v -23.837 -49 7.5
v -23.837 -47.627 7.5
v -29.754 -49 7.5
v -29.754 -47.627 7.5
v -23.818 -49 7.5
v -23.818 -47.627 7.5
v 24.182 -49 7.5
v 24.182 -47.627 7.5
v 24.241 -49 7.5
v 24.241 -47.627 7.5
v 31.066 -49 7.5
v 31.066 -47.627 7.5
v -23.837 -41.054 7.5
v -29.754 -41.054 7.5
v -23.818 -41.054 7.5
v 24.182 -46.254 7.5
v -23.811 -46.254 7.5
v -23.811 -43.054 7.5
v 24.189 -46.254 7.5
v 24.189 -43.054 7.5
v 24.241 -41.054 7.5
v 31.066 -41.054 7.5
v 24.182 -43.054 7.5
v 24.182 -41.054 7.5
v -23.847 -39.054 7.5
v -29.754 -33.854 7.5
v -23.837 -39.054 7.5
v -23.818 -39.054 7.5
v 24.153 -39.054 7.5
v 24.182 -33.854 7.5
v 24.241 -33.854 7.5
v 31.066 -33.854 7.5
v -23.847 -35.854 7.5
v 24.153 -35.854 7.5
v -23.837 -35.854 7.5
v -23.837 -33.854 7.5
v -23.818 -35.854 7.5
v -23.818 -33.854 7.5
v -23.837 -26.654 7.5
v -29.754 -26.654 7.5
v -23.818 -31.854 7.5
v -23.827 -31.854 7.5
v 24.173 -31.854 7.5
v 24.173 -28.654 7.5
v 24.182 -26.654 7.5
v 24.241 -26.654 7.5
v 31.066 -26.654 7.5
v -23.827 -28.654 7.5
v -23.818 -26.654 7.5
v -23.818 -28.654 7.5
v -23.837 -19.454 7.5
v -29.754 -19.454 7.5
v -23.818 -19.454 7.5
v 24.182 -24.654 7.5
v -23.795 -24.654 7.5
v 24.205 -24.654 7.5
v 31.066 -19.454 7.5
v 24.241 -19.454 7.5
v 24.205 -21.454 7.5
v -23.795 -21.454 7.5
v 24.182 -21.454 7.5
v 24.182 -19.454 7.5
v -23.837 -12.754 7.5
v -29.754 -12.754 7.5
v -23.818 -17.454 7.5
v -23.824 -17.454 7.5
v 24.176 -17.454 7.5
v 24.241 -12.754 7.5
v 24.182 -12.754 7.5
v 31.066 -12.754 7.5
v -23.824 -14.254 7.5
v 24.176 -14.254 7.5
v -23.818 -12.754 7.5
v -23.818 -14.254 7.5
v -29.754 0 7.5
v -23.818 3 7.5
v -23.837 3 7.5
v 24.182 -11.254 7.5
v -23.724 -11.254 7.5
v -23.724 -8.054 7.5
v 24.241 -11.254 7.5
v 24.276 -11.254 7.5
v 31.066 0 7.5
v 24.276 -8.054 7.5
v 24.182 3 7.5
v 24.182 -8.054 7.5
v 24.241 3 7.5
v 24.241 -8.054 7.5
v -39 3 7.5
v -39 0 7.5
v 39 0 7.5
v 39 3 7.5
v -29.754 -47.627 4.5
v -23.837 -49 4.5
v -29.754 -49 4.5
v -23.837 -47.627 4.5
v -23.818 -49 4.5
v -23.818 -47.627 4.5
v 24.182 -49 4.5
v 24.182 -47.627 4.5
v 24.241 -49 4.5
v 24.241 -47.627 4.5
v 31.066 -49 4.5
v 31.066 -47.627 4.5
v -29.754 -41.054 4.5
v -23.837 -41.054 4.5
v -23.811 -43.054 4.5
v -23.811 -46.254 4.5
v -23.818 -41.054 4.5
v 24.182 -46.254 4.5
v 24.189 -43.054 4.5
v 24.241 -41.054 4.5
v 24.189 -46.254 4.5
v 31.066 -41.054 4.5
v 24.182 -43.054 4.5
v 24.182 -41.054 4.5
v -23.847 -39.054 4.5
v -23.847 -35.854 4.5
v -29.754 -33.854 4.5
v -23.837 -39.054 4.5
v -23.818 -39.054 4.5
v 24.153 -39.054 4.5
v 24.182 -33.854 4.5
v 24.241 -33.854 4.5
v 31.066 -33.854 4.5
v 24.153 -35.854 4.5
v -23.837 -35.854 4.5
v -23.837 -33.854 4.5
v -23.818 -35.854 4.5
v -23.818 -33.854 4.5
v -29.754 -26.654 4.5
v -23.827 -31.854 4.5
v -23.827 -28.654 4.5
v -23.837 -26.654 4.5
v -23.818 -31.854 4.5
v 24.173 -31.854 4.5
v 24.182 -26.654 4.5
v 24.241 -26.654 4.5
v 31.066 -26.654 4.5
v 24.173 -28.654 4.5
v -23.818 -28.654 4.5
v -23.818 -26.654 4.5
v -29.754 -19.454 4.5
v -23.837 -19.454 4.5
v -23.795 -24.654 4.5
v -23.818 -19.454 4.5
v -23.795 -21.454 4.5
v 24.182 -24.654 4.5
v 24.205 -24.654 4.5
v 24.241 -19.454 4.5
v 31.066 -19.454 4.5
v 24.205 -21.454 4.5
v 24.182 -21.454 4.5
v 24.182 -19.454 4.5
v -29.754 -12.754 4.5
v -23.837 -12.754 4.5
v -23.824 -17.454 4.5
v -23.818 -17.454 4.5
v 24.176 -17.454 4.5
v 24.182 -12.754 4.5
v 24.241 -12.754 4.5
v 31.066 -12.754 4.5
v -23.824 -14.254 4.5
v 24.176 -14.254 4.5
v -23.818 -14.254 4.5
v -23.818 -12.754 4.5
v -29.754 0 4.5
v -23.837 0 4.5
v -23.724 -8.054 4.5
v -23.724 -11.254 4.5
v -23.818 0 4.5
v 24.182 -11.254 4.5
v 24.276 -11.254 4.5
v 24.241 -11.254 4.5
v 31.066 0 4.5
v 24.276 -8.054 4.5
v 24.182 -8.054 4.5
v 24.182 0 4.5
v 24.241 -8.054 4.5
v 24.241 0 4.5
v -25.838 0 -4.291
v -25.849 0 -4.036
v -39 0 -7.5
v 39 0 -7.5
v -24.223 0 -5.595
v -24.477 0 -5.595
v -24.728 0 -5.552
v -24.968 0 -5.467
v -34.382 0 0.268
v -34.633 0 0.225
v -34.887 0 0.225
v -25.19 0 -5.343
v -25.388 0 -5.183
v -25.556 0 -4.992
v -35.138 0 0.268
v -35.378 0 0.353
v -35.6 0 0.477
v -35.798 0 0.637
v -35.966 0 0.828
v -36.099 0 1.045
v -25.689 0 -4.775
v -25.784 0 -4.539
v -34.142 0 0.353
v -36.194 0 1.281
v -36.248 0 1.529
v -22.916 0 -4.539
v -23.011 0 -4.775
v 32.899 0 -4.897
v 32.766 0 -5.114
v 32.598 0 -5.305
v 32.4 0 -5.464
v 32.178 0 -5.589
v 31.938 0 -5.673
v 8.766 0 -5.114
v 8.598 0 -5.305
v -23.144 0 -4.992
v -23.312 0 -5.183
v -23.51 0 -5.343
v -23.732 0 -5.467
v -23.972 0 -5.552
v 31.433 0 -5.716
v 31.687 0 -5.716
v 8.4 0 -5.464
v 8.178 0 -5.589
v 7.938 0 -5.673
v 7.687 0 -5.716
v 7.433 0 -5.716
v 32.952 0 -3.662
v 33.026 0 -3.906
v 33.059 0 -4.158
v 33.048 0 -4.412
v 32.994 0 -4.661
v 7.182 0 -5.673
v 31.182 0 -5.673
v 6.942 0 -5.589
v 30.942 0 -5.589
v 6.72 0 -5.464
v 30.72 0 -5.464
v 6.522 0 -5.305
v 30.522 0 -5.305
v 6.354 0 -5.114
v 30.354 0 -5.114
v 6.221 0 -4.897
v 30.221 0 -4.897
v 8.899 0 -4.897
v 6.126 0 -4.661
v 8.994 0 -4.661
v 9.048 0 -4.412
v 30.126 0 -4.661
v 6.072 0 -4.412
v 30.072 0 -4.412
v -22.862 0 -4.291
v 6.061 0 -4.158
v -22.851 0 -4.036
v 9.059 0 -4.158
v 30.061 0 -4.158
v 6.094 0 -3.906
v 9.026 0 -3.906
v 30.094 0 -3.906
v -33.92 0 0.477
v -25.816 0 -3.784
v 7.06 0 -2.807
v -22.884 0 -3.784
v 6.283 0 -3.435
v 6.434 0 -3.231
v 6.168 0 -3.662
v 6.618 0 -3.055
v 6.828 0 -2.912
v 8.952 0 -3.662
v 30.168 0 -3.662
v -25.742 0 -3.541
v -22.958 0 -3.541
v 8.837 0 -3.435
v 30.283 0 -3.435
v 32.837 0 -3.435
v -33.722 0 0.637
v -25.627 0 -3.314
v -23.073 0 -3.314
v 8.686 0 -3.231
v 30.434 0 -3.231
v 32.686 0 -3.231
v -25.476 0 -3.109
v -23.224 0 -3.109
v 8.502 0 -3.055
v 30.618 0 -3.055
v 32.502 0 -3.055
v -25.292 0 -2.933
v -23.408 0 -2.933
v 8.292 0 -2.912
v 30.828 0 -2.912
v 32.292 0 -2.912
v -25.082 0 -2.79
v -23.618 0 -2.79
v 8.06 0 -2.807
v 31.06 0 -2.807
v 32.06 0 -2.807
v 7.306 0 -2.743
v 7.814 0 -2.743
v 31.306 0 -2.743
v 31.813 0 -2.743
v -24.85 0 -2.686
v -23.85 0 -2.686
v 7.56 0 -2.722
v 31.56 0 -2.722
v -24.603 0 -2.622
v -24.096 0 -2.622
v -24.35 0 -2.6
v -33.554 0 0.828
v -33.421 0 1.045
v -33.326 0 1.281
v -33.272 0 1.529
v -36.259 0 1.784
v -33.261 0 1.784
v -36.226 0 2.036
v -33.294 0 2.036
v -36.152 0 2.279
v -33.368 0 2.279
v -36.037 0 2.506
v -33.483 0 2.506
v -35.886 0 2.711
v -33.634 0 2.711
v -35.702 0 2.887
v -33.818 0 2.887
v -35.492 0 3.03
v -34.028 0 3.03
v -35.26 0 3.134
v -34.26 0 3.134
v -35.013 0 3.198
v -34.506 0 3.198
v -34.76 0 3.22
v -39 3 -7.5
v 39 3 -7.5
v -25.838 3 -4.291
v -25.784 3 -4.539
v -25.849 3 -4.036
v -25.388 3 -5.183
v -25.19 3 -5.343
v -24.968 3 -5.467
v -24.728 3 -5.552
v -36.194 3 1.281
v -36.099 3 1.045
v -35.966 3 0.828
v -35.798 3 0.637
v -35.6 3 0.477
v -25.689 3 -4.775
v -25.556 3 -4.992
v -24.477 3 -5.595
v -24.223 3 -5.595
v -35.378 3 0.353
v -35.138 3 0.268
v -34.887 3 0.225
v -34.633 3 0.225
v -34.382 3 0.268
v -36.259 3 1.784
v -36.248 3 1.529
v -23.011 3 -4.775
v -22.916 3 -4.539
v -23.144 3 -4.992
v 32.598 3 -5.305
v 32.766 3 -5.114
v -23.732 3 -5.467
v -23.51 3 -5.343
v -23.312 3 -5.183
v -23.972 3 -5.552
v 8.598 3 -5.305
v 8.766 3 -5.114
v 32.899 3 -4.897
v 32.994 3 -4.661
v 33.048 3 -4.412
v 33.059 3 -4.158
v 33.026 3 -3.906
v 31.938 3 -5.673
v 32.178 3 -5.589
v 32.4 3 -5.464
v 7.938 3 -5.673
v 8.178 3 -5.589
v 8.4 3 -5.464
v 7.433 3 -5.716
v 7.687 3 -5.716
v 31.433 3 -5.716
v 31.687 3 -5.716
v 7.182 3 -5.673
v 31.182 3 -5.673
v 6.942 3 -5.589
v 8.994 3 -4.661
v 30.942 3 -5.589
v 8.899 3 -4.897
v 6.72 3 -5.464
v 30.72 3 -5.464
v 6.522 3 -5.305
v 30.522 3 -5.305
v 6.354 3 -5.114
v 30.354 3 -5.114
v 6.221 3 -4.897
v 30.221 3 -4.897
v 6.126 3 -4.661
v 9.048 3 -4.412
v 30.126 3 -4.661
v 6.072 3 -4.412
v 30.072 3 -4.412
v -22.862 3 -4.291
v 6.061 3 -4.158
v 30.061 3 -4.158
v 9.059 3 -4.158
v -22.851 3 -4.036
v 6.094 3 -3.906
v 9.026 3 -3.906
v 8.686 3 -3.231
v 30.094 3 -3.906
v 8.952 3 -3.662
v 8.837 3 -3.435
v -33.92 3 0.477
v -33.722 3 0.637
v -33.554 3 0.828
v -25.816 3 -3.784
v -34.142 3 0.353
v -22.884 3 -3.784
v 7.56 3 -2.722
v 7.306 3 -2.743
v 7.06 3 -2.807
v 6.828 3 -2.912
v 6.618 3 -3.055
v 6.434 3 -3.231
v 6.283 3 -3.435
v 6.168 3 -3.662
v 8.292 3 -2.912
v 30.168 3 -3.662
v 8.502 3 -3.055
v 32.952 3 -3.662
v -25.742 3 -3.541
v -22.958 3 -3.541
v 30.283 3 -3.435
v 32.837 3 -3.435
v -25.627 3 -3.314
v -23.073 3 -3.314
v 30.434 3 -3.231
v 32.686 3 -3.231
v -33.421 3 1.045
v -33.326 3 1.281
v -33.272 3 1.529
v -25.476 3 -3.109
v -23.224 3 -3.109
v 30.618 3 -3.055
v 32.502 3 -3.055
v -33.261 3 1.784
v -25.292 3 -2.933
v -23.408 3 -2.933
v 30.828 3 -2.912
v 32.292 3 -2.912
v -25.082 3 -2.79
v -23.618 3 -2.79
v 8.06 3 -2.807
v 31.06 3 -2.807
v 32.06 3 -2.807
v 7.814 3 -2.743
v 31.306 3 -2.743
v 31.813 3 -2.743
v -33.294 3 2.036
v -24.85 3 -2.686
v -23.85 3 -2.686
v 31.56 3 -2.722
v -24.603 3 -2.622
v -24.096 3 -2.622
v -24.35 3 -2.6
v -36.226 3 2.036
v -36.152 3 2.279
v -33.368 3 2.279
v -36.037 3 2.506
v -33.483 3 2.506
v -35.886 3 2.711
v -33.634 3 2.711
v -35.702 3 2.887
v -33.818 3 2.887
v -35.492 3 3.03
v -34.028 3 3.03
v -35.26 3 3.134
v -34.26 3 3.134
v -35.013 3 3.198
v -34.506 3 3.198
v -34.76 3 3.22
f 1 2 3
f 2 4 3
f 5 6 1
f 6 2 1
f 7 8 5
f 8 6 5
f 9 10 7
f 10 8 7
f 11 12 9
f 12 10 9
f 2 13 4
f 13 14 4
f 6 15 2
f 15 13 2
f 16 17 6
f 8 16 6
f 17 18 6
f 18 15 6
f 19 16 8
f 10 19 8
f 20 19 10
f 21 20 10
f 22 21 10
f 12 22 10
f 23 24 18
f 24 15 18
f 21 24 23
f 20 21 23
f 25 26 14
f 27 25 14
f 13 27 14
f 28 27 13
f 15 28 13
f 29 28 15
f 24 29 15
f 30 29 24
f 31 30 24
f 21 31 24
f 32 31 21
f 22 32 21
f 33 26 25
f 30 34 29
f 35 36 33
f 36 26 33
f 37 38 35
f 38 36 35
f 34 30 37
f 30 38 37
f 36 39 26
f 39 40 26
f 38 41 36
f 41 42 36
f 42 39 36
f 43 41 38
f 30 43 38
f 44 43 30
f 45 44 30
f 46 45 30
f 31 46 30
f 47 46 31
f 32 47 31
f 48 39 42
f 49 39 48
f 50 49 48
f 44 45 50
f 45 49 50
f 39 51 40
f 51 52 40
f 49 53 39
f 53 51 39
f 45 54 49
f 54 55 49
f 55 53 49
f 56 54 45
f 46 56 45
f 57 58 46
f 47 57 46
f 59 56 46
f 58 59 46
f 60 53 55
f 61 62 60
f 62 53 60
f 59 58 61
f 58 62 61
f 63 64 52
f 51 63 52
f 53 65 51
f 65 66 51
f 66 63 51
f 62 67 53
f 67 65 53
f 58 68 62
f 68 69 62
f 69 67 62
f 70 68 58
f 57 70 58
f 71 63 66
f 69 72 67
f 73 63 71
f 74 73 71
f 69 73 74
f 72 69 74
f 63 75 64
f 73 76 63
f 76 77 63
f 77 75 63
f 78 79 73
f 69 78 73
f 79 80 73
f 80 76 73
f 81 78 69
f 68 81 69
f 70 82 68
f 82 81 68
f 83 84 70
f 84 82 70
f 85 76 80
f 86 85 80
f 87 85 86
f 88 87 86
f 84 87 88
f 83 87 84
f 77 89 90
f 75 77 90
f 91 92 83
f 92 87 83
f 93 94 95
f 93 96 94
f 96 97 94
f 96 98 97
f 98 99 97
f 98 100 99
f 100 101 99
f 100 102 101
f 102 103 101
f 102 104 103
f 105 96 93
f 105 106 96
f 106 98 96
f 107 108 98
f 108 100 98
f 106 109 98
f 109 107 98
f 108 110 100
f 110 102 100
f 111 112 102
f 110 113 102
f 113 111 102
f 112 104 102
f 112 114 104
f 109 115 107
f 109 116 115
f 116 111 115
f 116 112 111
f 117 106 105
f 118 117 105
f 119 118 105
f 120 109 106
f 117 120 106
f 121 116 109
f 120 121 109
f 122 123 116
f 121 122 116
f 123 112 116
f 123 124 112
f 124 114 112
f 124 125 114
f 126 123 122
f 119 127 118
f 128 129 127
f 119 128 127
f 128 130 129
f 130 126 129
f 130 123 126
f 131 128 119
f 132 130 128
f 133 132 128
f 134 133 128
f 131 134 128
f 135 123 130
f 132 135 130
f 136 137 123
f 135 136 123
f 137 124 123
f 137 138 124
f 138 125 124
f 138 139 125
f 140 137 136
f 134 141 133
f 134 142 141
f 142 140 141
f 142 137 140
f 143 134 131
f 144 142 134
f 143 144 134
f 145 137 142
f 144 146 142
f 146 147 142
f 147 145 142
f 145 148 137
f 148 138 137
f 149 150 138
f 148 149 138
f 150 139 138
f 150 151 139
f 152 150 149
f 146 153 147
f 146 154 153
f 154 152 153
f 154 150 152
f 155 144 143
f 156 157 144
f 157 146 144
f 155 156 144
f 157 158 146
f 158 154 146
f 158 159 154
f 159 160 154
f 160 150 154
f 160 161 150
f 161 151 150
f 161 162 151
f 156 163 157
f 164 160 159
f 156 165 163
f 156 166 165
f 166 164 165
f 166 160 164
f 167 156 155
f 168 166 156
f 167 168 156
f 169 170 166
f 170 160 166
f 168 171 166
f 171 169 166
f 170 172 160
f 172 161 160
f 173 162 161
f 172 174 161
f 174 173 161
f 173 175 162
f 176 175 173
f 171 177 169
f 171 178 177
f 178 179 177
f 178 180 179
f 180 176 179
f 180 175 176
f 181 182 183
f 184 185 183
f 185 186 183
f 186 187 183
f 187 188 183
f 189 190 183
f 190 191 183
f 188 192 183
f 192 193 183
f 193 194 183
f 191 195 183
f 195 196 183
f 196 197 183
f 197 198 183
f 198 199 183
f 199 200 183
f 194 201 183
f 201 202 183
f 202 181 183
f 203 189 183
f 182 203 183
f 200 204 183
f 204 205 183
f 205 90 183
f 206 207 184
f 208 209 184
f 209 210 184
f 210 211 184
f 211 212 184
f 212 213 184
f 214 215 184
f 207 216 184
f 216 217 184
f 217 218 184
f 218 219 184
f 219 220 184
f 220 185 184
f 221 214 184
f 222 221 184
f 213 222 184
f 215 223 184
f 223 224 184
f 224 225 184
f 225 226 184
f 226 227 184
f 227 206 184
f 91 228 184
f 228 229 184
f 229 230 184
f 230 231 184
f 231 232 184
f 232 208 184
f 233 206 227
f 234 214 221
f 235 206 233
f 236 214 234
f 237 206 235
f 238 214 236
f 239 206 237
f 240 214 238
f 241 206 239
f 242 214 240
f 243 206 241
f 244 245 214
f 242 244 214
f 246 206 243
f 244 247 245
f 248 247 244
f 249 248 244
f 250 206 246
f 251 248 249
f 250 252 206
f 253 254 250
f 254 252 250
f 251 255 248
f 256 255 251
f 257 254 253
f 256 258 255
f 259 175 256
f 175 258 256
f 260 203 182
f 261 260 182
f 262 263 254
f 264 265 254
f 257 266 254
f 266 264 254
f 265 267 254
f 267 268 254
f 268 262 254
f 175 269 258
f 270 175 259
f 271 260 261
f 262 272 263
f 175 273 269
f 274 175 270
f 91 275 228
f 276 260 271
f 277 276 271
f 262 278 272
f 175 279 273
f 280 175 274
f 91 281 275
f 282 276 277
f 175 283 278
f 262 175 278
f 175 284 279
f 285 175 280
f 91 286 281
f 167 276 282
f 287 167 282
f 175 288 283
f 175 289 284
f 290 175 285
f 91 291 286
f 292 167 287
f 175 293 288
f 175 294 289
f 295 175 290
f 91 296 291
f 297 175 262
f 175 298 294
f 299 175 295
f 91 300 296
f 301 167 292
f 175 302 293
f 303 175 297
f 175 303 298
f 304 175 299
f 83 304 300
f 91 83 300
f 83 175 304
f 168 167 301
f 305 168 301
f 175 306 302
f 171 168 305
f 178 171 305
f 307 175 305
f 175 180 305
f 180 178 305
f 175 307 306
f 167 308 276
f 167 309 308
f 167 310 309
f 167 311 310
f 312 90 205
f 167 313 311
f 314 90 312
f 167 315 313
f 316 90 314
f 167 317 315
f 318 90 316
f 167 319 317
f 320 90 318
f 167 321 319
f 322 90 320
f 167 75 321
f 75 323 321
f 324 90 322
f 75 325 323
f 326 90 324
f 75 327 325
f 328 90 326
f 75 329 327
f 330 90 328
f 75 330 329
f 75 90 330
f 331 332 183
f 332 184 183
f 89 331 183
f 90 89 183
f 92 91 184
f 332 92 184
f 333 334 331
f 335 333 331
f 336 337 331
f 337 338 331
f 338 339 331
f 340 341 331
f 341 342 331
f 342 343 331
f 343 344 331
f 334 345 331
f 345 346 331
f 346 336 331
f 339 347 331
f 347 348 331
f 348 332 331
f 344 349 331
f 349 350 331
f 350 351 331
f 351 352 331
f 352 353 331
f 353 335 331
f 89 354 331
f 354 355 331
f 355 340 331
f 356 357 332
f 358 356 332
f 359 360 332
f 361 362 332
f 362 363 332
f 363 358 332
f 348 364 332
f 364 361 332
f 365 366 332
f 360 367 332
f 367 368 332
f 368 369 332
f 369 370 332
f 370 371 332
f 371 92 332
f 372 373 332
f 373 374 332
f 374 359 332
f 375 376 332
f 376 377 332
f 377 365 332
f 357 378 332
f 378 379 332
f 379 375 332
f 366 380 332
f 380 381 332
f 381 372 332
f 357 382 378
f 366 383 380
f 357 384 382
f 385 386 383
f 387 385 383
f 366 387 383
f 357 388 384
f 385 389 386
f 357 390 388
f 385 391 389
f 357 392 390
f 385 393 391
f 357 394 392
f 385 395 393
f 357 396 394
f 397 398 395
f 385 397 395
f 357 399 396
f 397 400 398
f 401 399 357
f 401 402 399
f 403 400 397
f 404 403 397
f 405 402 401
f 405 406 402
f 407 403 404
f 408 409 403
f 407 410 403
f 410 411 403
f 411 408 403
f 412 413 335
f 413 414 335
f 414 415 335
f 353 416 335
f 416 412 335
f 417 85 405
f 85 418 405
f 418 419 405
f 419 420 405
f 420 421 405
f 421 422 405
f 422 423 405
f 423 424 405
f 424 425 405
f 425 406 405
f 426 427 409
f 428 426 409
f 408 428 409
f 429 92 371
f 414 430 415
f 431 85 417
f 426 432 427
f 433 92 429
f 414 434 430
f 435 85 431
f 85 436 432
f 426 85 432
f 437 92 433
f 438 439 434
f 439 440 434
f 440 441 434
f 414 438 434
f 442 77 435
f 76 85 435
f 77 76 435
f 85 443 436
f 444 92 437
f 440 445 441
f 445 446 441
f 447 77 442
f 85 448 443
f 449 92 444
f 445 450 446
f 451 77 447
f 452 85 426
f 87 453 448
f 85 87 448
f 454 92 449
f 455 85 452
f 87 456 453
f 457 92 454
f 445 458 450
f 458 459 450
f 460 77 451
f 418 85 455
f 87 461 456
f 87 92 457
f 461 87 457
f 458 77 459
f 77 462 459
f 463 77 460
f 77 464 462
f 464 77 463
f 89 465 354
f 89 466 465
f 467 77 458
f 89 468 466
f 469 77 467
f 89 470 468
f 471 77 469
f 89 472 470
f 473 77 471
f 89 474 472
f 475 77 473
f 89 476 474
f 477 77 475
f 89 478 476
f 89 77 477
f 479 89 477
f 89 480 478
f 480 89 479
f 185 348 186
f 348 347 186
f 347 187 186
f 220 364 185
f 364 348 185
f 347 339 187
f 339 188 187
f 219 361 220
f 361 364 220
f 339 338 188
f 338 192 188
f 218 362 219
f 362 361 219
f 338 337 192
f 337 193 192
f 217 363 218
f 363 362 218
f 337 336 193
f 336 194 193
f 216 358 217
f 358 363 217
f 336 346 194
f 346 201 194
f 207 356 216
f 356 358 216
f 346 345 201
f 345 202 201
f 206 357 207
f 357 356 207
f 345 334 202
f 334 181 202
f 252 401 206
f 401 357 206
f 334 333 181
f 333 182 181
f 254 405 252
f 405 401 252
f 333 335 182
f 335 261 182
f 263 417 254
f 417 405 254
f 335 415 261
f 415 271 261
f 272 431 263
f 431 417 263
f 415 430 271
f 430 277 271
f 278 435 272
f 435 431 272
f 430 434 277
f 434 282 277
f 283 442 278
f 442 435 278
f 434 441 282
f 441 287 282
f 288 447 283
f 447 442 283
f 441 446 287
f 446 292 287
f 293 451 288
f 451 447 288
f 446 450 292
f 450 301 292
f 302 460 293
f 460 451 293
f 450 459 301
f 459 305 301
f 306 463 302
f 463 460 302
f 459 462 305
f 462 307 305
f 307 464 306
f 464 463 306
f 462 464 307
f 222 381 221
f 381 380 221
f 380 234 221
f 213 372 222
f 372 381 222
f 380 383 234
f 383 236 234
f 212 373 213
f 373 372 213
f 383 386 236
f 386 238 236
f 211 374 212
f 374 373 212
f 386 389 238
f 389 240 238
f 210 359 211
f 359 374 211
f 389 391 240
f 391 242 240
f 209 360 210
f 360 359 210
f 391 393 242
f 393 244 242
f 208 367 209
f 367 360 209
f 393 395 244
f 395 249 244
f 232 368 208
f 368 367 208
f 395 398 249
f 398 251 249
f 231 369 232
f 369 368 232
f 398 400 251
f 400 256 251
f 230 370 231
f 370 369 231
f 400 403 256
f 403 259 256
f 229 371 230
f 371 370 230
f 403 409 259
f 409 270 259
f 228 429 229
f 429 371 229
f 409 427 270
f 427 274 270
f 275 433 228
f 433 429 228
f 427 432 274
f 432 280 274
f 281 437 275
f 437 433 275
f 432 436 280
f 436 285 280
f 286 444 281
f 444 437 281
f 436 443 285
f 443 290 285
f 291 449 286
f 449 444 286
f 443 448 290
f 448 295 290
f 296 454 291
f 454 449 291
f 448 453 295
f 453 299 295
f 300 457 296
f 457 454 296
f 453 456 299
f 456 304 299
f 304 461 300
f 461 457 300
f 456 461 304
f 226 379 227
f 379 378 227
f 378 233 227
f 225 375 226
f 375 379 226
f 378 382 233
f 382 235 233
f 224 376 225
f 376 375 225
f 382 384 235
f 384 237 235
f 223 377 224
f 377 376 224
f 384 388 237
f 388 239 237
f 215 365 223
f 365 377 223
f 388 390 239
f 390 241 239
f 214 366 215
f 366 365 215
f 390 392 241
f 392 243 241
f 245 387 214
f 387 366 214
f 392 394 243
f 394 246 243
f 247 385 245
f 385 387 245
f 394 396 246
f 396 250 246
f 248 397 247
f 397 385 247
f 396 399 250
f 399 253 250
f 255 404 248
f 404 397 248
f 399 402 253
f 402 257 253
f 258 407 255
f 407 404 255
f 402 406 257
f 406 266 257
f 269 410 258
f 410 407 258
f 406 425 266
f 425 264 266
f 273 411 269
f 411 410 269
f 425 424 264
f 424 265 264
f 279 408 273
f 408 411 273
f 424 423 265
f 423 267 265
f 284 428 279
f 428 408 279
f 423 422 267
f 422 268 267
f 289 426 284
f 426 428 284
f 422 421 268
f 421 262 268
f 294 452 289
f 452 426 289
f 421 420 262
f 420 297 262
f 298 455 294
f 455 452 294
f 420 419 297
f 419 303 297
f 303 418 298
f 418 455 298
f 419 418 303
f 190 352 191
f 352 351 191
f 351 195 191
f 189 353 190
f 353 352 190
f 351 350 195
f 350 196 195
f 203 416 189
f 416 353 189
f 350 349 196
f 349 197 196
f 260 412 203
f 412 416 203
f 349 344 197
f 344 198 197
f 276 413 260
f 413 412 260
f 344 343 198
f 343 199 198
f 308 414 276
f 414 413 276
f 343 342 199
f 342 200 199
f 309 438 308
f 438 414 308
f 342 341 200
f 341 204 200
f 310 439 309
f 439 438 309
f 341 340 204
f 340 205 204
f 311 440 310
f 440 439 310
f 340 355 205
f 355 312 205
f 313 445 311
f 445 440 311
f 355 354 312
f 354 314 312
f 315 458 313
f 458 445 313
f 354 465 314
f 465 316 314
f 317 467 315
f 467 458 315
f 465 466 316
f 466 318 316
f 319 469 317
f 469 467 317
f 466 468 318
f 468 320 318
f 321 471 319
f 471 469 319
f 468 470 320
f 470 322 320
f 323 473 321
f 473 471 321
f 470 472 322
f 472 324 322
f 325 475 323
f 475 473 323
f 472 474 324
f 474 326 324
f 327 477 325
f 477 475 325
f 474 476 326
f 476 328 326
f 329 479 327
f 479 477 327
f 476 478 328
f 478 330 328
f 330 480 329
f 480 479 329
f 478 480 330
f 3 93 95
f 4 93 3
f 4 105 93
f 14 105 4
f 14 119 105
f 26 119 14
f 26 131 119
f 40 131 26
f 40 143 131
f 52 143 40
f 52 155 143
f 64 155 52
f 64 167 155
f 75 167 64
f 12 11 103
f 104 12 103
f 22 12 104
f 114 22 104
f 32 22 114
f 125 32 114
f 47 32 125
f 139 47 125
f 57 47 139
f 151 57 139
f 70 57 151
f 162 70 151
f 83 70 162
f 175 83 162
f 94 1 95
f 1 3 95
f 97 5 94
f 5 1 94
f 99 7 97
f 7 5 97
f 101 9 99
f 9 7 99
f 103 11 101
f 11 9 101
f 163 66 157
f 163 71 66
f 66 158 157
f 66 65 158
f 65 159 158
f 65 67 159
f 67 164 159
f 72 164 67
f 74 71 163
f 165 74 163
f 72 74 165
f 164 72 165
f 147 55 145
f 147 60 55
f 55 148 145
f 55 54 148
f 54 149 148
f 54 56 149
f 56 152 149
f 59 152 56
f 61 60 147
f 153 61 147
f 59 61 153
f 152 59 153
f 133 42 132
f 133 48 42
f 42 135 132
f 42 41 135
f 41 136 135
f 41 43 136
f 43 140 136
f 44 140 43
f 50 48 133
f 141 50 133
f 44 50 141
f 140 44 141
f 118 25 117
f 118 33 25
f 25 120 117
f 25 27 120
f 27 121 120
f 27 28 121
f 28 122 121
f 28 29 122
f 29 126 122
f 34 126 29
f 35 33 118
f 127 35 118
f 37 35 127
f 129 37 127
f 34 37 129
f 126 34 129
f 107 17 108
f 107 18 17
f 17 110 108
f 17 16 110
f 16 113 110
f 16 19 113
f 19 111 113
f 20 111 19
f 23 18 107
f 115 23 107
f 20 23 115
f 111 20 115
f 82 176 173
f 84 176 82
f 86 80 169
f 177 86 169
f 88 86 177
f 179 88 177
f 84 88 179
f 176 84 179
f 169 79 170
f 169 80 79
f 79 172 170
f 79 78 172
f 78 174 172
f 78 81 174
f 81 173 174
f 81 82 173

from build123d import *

# Parameters (mm, degrees)
SKETCH_1_W                = 78
SKETCH_1_H                = 15
EXTRUDE_1_DEPTH           = 3
SKETCH_3_R                = 1.5
CUT_EXTRUDE_1_DEPTH       = 3
SKETCH_4_R                = 6
EXTRUDE_2_DEPTH           = 18
SKETCH_5_R                = 4.5
CUT_EXTRUDE_2_DEPTH       = 21
F_2_0MM_2_D               = 3
F_2_0MM_2_DEPTH           = 4.5
F_2_0MM_2_TIP             = 1.5
F_2_0MM_2_ON_FACE_2_D     = 3
F_2_0MM_2_ON_FACE_2_DEPTH = 4.5
F_2_0MM_2_ON_FACE_2_TIP   = 1.5
SKETCH_10_W               = 6
SKETCH_10_H               = 10
CUT_EXTRUDE_3_DEPTH       = 7
SKETCH_13_W               = 19.835687411
SKETCH_13_H               = 21.610205193
CUT_EXTRUDE_4_DEPTH       = 20
SKETCH_14_W               = 11.523038103
SKETCH_14_H               = 10.49031299
EXTRUDE_3_DEPTH           = 3
SKETCH_18_W               = 78
SKETCH_18_H               = 8
EXTRUDE_4_DEPTH           = 3
SKETCH_19_W               = 36.767904102
SKETCH_19_H               = 2.5
EXTRUDE_5_DEPTH           = 12.5
SKETCH_23_R               = 1.65
CUT_EXTRUDE_6_DEPTH       = 12.5
SKETCH_25_W               = 4.236607592
SKETCH_25_H               = 5.36409187
EXTRUDE_7_DEPTH           = 2.5
SKETCH_26_R               = 1.6
CUT_EXTRUDE_7_DEPTH       = 2.5
SKETCH_27_W               = 21.346012392
SKETCH_27_H               = 6.594354882
EXTRUDE_8_DEPTH           = 2.5
SKETCH_28_W               = 36.767231154
SKETCH_28_H               = 5.91819544
EXTRUDE_9_DEPTH           = 2.5
SKETCH_29_W               = 27.660340415
SKETCH_29_H               = 3.5
CUT_EXTRUDE_9_DEPTH       = 2.5
SKETCH_30_W               = 78
SKETCH_30_H               = 8
CUT_EXTRUDE_10_DEPTH      = 100
SKETCH_31_W               = 60.820132647
SKETCH_31_H               = 3
EXTRUDE_10_DEPTH          = 49
SKETCH_32_W               = 48
SKETCH_32_H               = 3.2
CUT_EXTRUDE_11_DEPTH      = 49


with BuildPart() as part:
    # 草图1 → 凸台-拉伸1 (new body)
    with BuildSketch(Plane(origin=(0, 0, 0), x_dir=(1, 0, 0), z_dir=(0, 1, 0))):
        Rectangle(SKETCH_1_W, SKETCH_1_H)
    extrude(amount=EXTRUDE_1_DEPTH)

    # 草图3 → 切除-拉伸1 (cut)
    with BuildSketch(Plane(origin=(0, 3, 0), x_dir=(1, 0, 0), z_dir=(0, 1, 0))):
        with Locations(Location((-34.76, -1.72, 0), (0, 0, 270))):
            Circle(SKETCH_3_R)
        with Locations(Location((-24.35, 4.1, 0), (0, 0, 270))):
            Circle(SKETCH_3_R)
        with Locations(Location((31.56, 4.221692081, 0), (0, 0, 270))):
            Circle(SKETCH_3_R)
        with Locations(Location((7.56, 4.221692081, 0), (0, 0, 270))):
            Circle(SKETCH_3_R)
    extrude(amount=-CUT_EXTRUDE_1_DEPTH, mode=Mode.SUBTRACT)

    # 草图4 → 凸台-拉伸2 (add)
    with BuildSketch(Plane(origin=(0, 3, 0), x_dir=(1, 0, 0), z_dir=(0, 1, 0))):
        with Locations(Location((-3, -1.234165229, 0), (0, 0, 270))):
            Circle(SKETCH_4_R)
    extrude(amount=EXTRUDE_2_DEPTH)

    # 草图5 → 切除-拉伸2 (cut)
    with BuildSketch(Plane(origin=(0, 21, 0), x_dir=(1, 0, 0), z_dir=(0, 1, 0))):
        with Locations(Location((-3, -1.234165229, 0), (0, 0, 270))):
            Circle(SKETCH_5_R)
    extrude(amount=-CUT_EXTRUDE_2_DEPTH, mode=Mode.SUBTRACT)

    # Ø2.0mm 暗销孔2
    with Locations(Plane(origin=(-7.901331048, 17.342107422, 4.694938836), x_dir=(-0.576795601176, 0, -0.816888507977), z_dir=(-0.816888507977, 0, 0.576795601176))):
        with Locations((0, 0)):
            Hole(F_2_0MM_2_D / 2, depth=F_2_0MM_2_DEPTH)
            with Locations((0, 0, -(F_2_0MM_2_DEPTH + F_2_0MM_2_TIP / 2))):  # 90° drill point
                Cone(0, F_2_0MM_2_D / 2, F_2_0MM_2_TIP, mode=Mode.SUBTRACT)

    # Ø2.0mm 暗销孔2 on face 2
    with Locations(Plane(origin=(1.071764877, 17.164817099, 5.641061052), x_dir=(0.734483043181, 0, -0.678627039897), z_dir=(0.678627039897, 0, 0.734483043181))):
        with Locations((0, 0)):
            Hole(F_2_0MM_2_ON_FACE_2_D / 2, depth=F_2_0MM_2_ON_FACE_2_DEPTH)
            with Locations((0, 0, -(F_2_0MM_2_ON_FACE_2_DEPTH + F_2_0MM_2_ON_FACE_2_TIP / 2))):  # 90° drill point
                Cone(0, F_2_0MM_2_ON_FACE_2_D / 2, F_2_0MM_2_ON_FACE_2_TIP, mode=Mode.SUBTRACT)

    # 草图10 → 切除-拉伸3 (cut)
    with BuildSketch(Plane(origin=(0, 0, -7.5), x_dir=(-1, 0, 0), z_dir=(0, 0, -1))):
        with Locations((3, 8)):
            Rectangle(SKETCH_10_W, SKETCH_10_H)
    extrude(amount=-CUT_EXTRUDE_3_DEPTH, mode=Mode.SUBTRACT)

    # 草图13 → 切除-拉伸4 (cut)
    with BuildSketch(Plane(origin=(0, 0, -7.5), x_dir=(-1, 0, 0), z_dir=(0, 0, -1))):
        with Locations((3.314421038, 13.805102597)):
            Rectangle(SKETCH_13_W, SKETCH_13_H)
    extrude(amount=-CUT_EXTRUDE_4_DEPTH, mode=Mode.SUBTRACT)

    # 草图14 → 凸台-拉伸3 (add)
    with BuildSketch(Plane(origin=(0, 3, 0), x_dir=(1, 0, 0), z_dir=(0, 1, 0))):
        with Locations((-2.989467433, -1.263493391)):
            Rectangle(SKETCH_14_W, SKETCH_14_H)
    extrude(amount=-EXTRUDE_3_DEPTH)

    # 草图18 → 凸台-拉伸4 (add)
    with BuildSketch(Plane.XZ):
        with Locations((0, 11.5)):
            Rectangle(SKETCH_18_W, SKETCH_18_H)
    extrude(amount=-EXTRUDE_4_DEPTH)

    # 草图19 → 凸台-拉伸5 (add)
    with BuildSketch(Plane.XZ):
        with Locations((0.839237194, 14.25)):
            Rectangle(SKETCH_19_W, SKETCH_19_H)
    extrude(amount=EXTRUDE_5_DEPTH)

    # 草图23 → 切除-拉伸6 (cut)
    with BuildSketch(Plane(origin=(0, 0, 13), x_dir=(-1, 0, 0), z_dir=(0, 0, -1))):
        with Locations((-8.603189245, -6.05592298)):
            Circle(SKETCH_23_R)
        with Locations((2.596810755, -6.05592298)):
            Circle(SKETCH_23_R)
    extrude(amount=-CUT_EXTRUDE_6_DEPTH, mode=Mode.SUBTRACT)

    # 草图25 → 凸台-拉伸7 (add)
    with BuildSketch(Plane(origin=(0, 0, 13), x_dir=(-1, 0, 0), z_dir=(0, 0, -1))):
        with Locations((2.330668631, -6.426480946)):
            Rectangle(SKETCH_25_W, SKETCH_25_H)
    extrude(amount=-EXTRUDE_7_DEPTH)

    # 草图26 → 切除-拉伸7 (cut)
    with BuildSketch(Plane(origin=(0, 0, 13), x_dir=(-1, 0, 0), z_dir=(0, 0, -1))):
        with Locations((4.196810755, -6.05592298)):
            Circle(SKETCH_26_R)
    extrude(amount=-CUT_EXTRUDE_7_DEPTH, mode=Mode.SUBTRACT)

    # 草图27 → 凸台-拉伸8 (add)
    with BuildSketch(Plane(origin=(0, 0, 13), x_dir=(-1, 0, 0), z_dir=(0, 0, -1))):
        with Locations((-2.379316694, -6.691741876)):
            Rectangle(SKETCH_27_W, SKETCH_27_H)
    extrude(amount=-EXTRUDE_8_DEPTH)

    # 草图28 → 凸台-拉伸9 (add)
    with BuildSketch(Plane(origin=(0, 0, 13), x_dir=(-1, 0, 0), z_dir=(0, 0, -1))):
        with Locations((-0.839573668, -15.45909772)):
            Rectangle(SKETCH_28_W, SKETCH_28_H)
    extrude(amount=-EXTRUDE_9_DEPTH)

    # 草图29 → 切除-拉伸9 (cut)
    with BuildSketch(Plane(origin=(0, 0, 13), x_dir=(-1, 0, 0), z_dir=(0, 0, -1))):
        with Locations((-0.633763758, -13.394190827)):
            Rectangle(SKETCH_29_W, SKETCH_29_H)
    extrude(amount=-CUT_EXTRUDE_9_DEPTH, mode=Mode.SUBTRACT)

    # 草图30 → 切除-拉伸10 (cut)
    with BuildSketch(Plane(origin=(0, 3, 0), x_dir=(1, 0, 0), z_dir=(0, 1, 0))):
        with Locations((0, -11.5)):
            Rectangle(SKETCH_30_W, SKETCH_30_H)
    extrude(amount=-CUT_EXTRUDE_10_DEPTH, mode=Mode.SUBTRACT)

    # 草图31 → 凸台-拉伸10 (add)
    with BuildSketch(Plane.XZ):
        with Locations((0.65611444, 6)):
            Rectangle(SKETCH_31_W, SKETCH_31_H)
    extrude(amount=EXTRUDE_10_DEPTH)

    # 草图32 → 切除-拉伸11 (cut)
    with BuildSketch(Plane(origin=(0, 0, 4.5), x_dir=(-1, 0, 0), z_dir=(0, 0, -1))):
        with Locations((-0.175604554, -15.854114518)):
            Rectangle(SKETCH_32_W, SKETCH_32_H)
        with Locations((-0.205191163, -23.054114518)):
            Rectangle(SKETCH_32_W, SKETCH_32_H)
        with Locations((-0.173277927, -30.254114518)):
            Rectangle(SKETCH_32_W, SKETCH_32_H)
        with Locations((-0.15338956, -37.454114518)):
            Rectangle(SKETCH_32_W, SKETCH_32_H)
        with Locations((-0.189333293, -44.654114518)):
            Rectangle(SKETCH_32_W, SKETCH_32_H)
        with Locations((-0.276259634, -9.654114518)):
            Rectangle(SKETCH_32_W, SKETCH_32_H)
    extrude(amount=-CUT_EXTRUDE_11_DEPTH, mode=Mode.SUBTRACT)


solid = part.part
